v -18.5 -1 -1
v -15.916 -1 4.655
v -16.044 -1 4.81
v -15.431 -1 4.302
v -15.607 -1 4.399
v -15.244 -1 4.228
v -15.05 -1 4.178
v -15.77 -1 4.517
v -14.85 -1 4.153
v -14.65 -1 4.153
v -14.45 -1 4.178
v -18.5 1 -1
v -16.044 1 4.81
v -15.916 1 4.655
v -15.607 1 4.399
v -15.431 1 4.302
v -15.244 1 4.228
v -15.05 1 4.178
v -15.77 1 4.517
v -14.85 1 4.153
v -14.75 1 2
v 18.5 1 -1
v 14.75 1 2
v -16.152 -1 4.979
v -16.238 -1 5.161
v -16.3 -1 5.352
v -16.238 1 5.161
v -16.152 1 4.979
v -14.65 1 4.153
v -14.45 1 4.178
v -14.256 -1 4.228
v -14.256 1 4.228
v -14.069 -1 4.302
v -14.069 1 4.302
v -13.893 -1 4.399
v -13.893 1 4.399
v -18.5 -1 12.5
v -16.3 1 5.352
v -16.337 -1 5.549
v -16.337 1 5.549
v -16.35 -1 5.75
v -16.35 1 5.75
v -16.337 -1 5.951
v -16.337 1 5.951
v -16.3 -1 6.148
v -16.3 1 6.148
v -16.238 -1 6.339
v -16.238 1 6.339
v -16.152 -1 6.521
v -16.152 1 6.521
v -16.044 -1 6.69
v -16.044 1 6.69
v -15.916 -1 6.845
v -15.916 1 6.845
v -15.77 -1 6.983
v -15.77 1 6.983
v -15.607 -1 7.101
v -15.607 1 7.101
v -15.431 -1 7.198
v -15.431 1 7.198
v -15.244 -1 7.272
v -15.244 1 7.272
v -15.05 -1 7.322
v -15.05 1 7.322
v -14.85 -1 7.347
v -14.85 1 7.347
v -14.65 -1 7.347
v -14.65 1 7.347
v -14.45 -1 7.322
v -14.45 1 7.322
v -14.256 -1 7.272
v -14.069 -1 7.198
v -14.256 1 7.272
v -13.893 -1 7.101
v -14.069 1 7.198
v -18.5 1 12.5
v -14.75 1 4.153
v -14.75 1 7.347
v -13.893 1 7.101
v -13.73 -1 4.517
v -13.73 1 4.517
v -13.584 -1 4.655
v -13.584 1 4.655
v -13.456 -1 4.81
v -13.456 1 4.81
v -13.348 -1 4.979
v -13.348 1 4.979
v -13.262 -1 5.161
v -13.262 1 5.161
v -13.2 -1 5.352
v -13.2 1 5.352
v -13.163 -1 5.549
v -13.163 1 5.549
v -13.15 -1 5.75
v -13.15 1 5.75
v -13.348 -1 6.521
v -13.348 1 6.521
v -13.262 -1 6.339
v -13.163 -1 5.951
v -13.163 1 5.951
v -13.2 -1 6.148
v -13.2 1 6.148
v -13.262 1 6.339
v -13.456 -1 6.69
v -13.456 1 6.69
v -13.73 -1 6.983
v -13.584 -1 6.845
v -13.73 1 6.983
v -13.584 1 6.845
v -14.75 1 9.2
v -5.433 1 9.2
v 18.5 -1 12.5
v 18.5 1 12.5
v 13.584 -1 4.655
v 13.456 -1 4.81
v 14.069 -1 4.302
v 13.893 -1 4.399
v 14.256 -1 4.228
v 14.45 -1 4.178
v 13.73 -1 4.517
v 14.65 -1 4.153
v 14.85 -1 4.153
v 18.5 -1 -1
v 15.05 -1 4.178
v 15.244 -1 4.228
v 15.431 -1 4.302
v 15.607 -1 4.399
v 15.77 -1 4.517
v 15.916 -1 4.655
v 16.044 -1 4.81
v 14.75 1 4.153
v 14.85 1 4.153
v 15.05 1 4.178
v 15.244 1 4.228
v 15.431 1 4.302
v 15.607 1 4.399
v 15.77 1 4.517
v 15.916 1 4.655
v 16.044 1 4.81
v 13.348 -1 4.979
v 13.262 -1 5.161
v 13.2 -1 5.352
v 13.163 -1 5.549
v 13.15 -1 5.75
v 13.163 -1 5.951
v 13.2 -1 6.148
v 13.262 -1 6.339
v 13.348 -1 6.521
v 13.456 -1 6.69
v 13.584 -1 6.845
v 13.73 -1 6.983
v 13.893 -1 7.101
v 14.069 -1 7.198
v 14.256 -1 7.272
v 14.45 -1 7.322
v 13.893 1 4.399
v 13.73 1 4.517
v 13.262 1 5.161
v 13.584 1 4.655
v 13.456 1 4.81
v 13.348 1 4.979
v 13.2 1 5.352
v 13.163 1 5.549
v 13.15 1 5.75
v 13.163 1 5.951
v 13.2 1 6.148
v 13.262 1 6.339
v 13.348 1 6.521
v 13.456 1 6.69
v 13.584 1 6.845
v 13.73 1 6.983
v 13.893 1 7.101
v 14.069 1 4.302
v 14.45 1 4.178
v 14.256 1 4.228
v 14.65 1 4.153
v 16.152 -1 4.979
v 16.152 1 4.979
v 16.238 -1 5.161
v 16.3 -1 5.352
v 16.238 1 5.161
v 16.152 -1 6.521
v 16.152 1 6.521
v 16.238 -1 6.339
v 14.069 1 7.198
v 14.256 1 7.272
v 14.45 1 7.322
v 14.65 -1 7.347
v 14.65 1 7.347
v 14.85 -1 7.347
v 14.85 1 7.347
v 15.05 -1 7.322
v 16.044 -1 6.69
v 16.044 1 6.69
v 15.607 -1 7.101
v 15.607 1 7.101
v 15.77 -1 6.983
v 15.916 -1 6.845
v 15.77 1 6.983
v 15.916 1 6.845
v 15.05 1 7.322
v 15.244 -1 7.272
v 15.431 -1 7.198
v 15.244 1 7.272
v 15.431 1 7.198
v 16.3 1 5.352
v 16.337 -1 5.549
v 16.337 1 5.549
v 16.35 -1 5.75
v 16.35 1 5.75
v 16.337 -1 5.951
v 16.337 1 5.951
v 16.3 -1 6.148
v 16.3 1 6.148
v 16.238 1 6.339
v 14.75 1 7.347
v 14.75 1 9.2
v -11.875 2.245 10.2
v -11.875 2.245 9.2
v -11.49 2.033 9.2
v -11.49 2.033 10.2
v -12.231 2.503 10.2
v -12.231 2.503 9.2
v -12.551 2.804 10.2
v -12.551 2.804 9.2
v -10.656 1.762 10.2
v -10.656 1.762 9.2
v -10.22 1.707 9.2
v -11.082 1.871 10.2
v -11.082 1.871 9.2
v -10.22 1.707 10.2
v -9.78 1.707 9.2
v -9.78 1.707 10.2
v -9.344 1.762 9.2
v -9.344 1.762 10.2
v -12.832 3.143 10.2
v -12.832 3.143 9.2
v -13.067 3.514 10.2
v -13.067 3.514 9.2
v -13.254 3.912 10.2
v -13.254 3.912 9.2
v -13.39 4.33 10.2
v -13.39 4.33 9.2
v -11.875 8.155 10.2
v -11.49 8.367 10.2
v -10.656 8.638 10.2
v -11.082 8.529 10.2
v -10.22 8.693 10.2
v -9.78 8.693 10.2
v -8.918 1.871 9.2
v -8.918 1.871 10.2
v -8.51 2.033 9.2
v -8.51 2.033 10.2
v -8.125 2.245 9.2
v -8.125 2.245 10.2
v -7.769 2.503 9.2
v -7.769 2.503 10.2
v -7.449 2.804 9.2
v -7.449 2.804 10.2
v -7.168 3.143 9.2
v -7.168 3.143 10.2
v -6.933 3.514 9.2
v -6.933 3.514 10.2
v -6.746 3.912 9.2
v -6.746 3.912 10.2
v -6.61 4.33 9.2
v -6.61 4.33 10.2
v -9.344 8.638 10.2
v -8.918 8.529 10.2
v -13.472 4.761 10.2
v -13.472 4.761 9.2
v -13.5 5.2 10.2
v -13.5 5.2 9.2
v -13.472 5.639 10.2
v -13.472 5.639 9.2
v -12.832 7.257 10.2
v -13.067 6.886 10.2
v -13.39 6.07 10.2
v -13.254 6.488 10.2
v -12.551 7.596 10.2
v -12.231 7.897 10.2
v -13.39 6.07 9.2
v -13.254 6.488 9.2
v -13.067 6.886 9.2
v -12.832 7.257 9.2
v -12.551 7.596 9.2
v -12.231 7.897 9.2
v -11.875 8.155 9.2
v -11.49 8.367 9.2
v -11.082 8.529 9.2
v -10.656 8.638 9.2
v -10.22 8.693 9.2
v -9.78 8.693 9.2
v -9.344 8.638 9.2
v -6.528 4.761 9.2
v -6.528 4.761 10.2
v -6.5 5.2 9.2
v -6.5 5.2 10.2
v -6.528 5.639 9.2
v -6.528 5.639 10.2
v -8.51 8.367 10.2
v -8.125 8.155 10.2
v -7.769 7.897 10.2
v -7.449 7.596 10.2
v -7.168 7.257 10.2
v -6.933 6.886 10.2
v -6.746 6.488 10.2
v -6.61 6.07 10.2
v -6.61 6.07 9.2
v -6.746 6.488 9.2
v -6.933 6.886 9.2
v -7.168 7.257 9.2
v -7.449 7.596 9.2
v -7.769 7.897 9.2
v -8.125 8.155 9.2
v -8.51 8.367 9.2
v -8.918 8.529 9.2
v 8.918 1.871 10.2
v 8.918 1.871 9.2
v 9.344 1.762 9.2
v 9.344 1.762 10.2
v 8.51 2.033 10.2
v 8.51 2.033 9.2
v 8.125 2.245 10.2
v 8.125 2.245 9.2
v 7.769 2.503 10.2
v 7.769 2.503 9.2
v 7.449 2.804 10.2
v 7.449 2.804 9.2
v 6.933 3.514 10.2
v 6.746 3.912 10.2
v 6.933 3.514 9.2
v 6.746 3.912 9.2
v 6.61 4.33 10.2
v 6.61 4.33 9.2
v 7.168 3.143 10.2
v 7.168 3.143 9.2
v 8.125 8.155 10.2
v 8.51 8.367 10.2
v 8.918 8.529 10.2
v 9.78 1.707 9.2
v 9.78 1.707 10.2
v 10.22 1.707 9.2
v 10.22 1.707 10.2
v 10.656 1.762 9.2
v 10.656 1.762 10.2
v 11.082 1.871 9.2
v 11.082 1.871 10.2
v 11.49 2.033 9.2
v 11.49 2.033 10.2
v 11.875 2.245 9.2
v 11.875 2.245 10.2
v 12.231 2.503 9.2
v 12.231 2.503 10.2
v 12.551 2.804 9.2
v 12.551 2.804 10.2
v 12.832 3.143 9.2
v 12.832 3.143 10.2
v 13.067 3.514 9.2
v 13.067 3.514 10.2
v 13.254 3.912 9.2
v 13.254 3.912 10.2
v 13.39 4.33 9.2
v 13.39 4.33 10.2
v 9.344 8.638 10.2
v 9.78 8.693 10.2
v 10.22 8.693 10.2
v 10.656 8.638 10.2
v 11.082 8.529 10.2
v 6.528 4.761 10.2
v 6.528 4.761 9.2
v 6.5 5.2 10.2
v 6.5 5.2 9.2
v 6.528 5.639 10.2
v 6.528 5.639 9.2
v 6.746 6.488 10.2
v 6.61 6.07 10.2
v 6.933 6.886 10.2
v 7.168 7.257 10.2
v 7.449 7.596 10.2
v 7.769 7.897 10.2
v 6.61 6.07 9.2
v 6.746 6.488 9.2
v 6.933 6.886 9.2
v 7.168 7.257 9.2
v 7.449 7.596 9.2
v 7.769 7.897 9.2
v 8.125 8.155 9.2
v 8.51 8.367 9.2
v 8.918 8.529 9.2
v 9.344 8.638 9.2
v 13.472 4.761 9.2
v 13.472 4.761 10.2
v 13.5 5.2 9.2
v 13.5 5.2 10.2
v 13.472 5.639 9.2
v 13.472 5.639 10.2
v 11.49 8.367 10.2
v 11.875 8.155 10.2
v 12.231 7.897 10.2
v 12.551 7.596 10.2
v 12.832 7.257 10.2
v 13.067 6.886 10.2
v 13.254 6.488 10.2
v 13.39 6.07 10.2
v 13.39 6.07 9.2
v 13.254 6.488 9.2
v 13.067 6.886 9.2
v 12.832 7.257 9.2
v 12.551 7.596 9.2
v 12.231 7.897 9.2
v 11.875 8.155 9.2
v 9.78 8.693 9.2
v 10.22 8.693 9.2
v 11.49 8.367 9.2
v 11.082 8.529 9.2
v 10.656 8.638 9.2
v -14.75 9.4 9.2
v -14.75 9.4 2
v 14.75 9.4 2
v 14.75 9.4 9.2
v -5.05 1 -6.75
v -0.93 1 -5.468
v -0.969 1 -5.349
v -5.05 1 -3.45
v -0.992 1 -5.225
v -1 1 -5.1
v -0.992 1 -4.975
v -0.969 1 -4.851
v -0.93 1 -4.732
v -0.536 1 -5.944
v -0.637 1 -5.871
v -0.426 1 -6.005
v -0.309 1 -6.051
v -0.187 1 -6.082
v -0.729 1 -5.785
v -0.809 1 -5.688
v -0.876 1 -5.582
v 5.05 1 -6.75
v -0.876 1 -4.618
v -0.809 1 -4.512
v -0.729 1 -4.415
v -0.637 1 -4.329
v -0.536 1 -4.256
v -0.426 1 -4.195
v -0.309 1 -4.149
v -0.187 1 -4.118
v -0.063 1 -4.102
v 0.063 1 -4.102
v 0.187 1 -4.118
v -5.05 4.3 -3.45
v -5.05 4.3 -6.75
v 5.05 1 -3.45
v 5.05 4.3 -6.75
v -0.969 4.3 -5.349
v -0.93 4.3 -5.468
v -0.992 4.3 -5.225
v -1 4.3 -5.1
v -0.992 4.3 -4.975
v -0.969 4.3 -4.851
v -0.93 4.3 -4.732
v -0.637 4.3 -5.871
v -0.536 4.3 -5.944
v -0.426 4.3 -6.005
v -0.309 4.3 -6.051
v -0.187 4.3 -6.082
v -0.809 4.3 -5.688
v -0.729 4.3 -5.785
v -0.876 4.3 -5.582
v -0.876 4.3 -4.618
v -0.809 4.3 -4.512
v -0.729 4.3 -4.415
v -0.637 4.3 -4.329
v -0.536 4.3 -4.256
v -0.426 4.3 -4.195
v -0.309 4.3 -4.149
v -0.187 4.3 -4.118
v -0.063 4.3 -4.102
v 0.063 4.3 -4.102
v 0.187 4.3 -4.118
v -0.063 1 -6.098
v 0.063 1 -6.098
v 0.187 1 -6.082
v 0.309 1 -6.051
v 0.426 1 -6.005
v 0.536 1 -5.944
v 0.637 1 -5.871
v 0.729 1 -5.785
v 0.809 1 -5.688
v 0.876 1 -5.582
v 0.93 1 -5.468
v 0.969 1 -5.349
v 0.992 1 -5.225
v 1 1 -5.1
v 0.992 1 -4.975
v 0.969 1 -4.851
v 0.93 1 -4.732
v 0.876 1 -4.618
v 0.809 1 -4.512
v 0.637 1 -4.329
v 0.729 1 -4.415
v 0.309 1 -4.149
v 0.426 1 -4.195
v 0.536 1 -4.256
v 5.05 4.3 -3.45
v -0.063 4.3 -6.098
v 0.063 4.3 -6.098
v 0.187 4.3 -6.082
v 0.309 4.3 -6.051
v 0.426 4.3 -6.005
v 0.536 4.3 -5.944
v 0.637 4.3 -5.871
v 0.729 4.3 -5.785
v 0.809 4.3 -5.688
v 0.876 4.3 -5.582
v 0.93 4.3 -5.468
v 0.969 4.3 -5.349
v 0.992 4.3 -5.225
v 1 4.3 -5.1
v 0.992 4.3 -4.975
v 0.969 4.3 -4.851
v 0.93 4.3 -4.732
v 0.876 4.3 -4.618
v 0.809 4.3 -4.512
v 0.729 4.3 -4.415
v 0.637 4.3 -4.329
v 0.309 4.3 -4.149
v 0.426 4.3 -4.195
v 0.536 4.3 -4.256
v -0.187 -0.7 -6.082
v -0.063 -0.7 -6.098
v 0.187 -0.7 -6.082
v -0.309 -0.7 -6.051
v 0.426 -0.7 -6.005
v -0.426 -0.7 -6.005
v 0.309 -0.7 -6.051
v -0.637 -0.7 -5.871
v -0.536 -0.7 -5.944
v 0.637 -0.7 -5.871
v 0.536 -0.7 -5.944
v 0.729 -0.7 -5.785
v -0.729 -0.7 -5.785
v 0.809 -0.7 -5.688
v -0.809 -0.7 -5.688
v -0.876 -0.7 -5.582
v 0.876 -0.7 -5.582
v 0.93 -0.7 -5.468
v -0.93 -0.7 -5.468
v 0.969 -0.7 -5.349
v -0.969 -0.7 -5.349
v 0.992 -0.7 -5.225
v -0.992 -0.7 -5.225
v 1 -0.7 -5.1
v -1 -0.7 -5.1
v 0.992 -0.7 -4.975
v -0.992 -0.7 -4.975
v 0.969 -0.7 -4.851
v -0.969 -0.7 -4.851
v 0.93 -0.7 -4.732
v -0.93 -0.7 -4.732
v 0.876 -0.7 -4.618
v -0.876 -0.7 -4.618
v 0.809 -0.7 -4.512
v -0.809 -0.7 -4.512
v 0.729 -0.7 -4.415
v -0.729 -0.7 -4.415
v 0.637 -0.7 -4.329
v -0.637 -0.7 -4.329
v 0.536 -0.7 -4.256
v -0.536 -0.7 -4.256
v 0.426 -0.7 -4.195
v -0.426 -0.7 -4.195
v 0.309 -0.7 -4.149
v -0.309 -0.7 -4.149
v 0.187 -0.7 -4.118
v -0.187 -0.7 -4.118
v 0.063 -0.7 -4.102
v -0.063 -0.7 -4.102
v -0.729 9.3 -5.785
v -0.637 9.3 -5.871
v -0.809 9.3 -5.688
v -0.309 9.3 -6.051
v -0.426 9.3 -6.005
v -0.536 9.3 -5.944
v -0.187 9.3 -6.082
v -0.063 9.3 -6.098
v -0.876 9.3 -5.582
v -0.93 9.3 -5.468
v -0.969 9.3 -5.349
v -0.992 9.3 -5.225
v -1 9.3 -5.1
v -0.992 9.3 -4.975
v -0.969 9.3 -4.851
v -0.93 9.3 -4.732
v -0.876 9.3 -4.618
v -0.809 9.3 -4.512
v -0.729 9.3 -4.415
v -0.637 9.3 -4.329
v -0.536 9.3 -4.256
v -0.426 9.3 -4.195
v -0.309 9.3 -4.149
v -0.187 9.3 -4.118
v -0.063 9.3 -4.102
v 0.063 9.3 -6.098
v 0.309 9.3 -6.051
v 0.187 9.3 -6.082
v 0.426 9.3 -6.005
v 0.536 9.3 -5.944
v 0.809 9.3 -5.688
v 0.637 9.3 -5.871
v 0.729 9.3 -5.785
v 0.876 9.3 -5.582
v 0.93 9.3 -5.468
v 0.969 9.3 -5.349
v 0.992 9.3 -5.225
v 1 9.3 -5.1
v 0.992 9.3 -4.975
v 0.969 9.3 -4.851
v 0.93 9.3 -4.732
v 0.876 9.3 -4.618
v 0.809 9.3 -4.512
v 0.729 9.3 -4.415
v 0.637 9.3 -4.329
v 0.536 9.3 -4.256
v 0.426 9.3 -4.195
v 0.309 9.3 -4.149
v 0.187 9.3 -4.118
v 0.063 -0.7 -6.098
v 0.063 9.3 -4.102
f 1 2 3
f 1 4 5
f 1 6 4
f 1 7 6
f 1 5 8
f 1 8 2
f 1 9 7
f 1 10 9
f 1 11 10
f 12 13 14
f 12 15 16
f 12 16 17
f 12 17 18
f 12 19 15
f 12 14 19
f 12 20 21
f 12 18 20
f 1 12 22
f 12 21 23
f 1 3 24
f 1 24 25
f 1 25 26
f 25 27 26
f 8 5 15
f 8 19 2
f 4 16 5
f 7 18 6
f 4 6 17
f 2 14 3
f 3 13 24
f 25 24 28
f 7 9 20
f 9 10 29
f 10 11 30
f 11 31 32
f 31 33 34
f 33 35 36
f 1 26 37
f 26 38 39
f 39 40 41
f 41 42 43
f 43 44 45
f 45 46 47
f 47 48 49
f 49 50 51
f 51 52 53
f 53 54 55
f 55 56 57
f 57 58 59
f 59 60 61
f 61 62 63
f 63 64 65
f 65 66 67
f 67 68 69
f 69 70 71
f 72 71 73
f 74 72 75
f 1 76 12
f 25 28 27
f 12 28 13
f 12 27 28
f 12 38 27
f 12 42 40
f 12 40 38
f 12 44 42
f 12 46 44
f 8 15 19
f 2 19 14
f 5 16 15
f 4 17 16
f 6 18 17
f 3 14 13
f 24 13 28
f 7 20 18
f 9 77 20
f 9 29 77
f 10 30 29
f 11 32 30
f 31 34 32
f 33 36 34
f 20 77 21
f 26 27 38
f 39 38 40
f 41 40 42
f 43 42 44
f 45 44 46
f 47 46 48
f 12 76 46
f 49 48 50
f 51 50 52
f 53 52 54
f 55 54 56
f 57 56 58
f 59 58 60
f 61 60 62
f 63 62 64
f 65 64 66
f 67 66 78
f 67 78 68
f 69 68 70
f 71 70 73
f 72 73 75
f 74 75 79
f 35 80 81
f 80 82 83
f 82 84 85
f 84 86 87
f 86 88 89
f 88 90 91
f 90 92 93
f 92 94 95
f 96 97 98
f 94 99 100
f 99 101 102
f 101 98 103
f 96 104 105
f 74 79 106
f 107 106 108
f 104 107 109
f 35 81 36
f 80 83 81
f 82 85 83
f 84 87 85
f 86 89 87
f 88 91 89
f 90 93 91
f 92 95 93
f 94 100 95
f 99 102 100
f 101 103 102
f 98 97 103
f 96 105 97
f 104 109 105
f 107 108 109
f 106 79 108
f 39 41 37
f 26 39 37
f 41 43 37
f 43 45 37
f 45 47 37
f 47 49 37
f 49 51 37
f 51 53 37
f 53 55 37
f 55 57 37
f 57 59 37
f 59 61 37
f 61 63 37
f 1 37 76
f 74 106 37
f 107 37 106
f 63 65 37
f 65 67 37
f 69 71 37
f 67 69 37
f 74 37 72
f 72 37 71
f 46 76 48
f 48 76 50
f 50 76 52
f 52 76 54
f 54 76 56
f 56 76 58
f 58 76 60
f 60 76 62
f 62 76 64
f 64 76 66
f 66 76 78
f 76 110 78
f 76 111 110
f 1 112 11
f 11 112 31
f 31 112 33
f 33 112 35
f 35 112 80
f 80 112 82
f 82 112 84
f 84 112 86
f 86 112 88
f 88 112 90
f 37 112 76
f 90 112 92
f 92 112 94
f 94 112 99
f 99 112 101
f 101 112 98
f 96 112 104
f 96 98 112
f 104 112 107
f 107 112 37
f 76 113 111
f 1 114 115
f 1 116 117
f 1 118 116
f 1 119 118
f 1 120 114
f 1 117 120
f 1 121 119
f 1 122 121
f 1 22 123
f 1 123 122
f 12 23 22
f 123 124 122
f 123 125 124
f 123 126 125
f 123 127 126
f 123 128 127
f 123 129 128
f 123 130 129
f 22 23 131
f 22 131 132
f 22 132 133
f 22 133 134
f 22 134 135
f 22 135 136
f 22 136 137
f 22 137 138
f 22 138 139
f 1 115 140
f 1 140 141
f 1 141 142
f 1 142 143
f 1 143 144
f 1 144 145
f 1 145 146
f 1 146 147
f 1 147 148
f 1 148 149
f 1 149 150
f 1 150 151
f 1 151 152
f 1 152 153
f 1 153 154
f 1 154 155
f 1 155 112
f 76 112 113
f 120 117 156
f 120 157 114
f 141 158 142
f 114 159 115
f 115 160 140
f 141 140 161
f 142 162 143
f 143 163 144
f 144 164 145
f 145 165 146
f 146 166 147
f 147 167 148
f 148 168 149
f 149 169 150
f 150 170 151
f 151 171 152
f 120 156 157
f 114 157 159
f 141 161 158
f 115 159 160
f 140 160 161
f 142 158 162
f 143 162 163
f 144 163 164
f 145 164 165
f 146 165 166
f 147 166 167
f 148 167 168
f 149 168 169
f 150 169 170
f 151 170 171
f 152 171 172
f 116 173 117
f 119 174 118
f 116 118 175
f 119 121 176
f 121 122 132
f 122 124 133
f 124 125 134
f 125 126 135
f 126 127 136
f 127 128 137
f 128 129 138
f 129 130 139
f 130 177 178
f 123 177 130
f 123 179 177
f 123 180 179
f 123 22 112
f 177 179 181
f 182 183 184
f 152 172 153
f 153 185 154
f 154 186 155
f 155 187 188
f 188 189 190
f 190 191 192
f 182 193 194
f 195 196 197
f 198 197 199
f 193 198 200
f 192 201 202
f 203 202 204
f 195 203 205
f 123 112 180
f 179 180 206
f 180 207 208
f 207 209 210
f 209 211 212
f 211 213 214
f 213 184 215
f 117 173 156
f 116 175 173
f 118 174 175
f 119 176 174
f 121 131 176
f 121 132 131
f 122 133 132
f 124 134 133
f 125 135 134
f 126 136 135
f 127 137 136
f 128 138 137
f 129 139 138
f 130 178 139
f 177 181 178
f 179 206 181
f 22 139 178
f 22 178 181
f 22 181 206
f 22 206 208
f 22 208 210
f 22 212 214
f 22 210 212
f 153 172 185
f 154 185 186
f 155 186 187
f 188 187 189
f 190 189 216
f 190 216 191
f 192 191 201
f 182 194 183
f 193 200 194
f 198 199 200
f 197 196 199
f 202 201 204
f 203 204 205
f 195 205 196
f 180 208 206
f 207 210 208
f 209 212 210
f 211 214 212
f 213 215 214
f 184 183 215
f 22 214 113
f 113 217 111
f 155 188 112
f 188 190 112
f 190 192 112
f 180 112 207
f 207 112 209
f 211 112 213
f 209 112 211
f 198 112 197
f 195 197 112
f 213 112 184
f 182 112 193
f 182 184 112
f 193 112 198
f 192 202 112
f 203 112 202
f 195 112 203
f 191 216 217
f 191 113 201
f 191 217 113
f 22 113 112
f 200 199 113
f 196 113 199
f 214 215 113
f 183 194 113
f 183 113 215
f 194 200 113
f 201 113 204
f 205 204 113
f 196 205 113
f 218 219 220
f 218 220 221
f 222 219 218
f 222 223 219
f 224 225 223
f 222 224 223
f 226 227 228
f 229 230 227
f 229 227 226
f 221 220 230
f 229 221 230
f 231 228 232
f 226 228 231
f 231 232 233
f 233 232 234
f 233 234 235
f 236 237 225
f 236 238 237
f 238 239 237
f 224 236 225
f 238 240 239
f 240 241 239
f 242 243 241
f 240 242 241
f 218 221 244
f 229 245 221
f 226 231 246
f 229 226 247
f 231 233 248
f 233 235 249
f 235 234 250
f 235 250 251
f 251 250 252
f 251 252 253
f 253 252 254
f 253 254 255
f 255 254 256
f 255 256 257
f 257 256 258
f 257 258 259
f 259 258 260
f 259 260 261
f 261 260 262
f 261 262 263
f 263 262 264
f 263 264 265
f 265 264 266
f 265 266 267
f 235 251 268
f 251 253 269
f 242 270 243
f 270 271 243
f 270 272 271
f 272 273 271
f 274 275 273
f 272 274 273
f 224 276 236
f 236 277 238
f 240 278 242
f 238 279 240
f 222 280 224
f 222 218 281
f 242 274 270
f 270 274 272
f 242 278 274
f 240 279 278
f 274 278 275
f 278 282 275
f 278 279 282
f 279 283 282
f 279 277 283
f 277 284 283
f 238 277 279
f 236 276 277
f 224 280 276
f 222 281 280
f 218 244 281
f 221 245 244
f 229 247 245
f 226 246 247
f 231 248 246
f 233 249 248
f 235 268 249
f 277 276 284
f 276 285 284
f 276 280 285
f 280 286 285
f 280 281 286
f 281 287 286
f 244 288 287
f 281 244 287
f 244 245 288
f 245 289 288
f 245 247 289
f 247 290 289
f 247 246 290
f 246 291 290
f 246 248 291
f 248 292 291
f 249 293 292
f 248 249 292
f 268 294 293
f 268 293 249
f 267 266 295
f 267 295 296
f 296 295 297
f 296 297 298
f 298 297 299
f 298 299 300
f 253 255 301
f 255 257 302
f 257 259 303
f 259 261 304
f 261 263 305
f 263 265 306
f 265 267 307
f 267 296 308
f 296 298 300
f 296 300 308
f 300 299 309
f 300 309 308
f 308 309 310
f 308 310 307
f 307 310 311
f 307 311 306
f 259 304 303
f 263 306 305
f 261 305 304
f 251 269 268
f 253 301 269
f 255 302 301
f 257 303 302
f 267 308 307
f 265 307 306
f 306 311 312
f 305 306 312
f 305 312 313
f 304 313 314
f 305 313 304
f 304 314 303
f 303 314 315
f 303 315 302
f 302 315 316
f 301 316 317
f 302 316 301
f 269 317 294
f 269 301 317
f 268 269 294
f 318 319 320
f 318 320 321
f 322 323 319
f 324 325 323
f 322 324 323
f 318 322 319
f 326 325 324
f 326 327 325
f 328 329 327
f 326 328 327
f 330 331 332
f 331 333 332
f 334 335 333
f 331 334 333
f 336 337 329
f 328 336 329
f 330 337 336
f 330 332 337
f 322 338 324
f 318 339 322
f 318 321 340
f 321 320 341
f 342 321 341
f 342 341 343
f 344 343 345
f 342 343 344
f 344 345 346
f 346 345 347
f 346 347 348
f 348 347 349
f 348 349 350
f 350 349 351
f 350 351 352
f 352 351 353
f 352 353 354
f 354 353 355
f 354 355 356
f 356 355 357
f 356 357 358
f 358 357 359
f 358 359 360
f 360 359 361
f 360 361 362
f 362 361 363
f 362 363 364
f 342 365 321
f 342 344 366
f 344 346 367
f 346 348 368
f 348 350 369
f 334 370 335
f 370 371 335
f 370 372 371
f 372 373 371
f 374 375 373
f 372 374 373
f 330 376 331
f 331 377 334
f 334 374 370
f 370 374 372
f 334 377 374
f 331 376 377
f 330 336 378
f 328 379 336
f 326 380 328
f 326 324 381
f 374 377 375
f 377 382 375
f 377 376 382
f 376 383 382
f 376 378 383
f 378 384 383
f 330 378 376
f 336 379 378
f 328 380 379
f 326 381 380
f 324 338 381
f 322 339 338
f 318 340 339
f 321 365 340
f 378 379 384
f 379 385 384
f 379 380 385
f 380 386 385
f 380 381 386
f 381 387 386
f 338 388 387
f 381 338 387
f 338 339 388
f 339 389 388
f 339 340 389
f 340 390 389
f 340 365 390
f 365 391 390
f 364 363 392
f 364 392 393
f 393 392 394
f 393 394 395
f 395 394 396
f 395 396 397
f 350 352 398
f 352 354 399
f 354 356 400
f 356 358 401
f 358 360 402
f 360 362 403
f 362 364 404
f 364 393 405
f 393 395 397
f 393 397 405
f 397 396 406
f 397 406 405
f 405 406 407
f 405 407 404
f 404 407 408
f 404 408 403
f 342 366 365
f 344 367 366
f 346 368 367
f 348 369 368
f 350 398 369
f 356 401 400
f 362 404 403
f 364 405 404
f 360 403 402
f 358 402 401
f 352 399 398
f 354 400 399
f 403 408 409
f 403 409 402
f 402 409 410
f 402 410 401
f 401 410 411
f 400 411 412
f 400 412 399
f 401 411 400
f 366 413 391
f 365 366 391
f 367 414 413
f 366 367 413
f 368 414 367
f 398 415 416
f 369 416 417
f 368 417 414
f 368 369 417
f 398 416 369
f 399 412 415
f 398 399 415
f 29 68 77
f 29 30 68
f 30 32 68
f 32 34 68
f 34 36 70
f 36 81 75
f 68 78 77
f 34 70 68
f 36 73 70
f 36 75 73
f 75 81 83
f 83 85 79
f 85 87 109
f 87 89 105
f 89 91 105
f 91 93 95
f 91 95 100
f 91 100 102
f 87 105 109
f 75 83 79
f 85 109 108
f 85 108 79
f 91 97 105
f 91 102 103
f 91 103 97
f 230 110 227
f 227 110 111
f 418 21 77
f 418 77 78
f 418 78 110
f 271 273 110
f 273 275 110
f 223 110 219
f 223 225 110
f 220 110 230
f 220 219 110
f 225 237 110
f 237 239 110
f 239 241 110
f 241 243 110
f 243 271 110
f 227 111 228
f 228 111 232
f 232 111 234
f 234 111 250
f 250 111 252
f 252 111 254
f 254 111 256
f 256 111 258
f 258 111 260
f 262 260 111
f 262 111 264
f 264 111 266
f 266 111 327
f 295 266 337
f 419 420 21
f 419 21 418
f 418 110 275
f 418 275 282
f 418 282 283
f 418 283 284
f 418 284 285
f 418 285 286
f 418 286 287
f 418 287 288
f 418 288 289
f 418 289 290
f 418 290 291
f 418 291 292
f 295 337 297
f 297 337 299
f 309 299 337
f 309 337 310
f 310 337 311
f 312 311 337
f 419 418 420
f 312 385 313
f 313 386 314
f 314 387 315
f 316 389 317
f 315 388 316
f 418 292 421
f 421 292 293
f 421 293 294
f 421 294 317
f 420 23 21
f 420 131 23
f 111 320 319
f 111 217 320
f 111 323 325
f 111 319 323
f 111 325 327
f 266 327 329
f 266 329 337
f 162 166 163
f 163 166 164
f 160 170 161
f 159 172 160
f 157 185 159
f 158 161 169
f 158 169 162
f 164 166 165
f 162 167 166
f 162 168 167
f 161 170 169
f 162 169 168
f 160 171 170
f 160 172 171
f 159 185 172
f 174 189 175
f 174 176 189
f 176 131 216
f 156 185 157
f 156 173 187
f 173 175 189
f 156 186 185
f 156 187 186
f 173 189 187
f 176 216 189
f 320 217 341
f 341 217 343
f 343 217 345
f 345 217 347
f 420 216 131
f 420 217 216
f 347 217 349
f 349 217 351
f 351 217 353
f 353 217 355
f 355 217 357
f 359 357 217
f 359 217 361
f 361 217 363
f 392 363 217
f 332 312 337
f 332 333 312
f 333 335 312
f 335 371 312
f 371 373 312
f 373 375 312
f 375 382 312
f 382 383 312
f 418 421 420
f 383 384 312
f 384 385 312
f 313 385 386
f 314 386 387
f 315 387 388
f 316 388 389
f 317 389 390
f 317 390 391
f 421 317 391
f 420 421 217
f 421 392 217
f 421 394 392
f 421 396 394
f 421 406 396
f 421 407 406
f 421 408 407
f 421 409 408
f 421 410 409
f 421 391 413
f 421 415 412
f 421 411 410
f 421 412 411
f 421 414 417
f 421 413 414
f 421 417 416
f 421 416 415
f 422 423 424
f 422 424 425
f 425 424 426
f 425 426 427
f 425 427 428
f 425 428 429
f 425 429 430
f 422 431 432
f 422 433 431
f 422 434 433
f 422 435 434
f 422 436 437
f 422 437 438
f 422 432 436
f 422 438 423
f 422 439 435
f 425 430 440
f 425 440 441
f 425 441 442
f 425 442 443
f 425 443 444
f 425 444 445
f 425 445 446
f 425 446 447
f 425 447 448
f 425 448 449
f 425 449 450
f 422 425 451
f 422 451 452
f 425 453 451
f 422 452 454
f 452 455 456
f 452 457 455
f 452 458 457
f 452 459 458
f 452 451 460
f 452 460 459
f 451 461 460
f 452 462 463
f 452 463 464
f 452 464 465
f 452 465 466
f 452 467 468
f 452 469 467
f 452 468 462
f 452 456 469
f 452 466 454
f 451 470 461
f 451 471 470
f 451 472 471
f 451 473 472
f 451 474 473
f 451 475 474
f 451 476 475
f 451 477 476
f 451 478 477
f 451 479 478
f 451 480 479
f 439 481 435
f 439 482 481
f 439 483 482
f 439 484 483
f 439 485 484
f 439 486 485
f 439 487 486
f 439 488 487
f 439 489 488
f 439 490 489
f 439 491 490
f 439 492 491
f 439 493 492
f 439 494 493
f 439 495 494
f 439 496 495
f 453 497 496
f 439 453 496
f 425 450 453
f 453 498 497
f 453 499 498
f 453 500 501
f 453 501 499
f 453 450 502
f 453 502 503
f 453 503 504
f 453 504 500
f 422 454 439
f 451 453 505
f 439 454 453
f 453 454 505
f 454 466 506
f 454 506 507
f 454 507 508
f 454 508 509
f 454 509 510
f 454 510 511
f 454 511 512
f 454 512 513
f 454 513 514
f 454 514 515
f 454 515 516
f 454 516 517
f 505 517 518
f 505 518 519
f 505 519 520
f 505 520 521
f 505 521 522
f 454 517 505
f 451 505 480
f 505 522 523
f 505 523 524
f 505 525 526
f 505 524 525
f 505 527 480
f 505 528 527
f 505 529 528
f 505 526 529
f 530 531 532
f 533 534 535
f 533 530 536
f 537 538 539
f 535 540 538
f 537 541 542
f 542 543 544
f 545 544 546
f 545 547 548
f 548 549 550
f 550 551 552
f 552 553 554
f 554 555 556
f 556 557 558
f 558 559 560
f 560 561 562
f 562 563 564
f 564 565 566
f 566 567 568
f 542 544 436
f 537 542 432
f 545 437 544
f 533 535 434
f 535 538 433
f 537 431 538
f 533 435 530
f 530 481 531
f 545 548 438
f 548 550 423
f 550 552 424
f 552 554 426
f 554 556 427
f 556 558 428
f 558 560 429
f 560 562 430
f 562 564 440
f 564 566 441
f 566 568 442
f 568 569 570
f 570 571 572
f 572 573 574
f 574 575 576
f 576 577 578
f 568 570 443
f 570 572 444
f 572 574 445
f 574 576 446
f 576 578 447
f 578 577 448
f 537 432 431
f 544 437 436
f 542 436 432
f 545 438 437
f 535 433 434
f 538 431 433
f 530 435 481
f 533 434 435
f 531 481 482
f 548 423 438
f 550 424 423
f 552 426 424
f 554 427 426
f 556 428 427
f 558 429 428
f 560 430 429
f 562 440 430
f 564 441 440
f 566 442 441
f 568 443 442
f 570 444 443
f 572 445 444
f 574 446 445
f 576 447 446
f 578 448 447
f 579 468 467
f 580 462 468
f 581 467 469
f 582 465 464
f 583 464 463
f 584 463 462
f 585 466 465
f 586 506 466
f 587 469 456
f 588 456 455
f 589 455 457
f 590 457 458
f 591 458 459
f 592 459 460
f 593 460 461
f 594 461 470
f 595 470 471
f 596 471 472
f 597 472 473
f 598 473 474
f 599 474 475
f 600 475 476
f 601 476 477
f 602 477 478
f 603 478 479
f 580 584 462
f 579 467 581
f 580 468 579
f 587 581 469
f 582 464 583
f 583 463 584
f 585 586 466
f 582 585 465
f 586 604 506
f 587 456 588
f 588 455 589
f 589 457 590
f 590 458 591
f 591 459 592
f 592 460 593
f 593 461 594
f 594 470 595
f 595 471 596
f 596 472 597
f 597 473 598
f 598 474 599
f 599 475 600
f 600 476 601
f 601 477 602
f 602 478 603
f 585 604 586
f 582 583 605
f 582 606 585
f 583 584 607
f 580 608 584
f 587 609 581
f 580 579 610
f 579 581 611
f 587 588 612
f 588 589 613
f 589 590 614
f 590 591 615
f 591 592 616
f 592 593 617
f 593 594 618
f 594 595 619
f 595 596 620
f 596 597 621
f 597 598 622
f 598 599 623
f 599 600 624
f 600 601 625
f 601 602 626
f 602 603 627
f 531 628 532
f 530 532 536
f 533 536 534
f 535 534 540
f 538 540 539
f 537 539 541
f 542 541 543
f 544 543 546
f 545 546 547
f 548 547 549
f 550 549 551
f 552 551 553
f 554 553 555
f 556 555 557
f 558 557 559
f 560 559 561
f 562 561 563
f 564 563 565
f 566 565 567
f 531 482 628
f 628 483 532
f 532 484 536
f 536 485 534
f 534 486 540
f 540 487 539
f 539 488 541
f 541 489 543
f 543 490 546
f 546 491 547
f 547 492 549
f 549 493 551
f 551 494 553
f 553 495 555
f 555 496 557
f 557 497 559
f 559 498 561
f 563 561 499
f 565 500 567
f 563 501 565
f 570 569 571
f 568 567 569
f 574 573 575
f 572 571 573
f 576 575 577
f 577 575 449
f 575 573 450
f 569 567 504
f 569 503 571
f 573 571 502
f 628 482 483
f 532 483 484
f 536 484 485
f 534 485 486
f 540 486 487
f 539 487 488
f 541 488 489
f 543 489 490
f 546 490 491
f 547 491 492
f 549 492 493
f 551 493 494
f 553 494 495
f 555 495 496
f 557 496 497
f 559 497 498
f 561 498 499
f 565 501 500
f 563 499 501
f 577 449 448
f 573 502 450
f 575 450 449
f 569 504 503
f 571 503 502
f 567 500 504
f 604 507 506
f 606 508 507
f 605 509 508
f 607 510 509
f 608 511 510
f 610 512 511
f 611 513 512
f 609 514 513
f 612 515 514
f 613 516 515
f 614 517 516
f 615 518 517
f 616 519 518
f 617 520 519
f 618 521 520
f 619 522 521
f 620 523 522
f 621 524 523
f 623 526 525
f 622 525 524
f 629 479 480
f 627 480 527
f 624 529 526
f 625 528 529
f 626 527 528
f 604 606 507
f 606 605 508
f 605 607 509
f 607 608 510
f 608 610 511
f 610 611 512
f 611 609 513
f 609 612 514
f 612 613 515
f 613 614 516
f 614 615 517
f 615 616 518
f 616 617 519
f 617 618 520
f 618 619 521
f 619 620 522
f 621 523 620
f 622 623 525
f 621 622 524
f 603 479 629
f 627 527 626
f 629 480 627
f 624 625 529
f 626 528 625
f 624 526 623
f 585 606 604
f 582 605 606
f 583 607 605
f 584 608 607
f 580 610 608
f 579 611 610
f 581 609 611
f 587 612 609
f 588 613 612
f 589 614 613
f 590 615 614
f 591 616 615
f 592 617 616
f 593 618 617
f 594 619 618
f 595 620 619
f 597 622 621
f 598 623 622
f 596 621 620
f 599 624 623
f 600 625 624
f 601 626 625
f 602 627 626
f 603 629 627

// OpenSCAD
// GP2Y0A21YK0F 外形モデル
// 単位: mm
// 中心を原点とする

$fn = 50;

module gp2y0a21yk0f() {
    // 連結バー部 (取り付け部)
    // 幅37mm, 高さ13.5mm(Z), 厚み2mm(Y)
    color("gray")
    translate([0, 0, 13.5/2 - 2/2])
    difference() {
        cube([37, 2, 13.5], center=true);
        
        // 取付穴
        translate([-37/2 + 3.75, 0, 0]) rotate([90, 0, 0]) cylinder(d=3.2, h=5, center=true);
        translate([37/2 - 3.75, 0, 0]) rotate([90, 0, 0]) cylinder(d=3.2, h=5, center=true);
    }

    // レンズ部本体ケース
    // 幅29.5mm, 奥行(Y) 8.4mm (連結部除く), 高さ 7.2mm(Z)
    color("black")
    translate([0, 8.4/2 + 2/2, 7.2/2 + 2])
    cube([29.5, 8.4, 7.2], center=true);

    // レンズ部突起 (2箇所)
    color("dimgray")
    for (x = [-10, 10]) {
        translate([x, 8.4/2 + 2/2, 7.2/2 + 2 + 7.2/2])
        cylinder(d=7, h=2, center=true);
    }

    // 下部コネクタ部
    color("black")
    translate([0, 2/2 + 3.3/2, -13.5/2 + 3.3/2])
    cube([10.1, 3.3, 3.3], center=true);

    // ケーブル(簡易表現)
    color("white")
    translate([0, 2/2 + 3.3 + 5, -13.5/2 + 3.3/2])
    rotate([90, 0, 0])
    cylinder(d=2, h=10);
}

gp2y0a21yk0f();
